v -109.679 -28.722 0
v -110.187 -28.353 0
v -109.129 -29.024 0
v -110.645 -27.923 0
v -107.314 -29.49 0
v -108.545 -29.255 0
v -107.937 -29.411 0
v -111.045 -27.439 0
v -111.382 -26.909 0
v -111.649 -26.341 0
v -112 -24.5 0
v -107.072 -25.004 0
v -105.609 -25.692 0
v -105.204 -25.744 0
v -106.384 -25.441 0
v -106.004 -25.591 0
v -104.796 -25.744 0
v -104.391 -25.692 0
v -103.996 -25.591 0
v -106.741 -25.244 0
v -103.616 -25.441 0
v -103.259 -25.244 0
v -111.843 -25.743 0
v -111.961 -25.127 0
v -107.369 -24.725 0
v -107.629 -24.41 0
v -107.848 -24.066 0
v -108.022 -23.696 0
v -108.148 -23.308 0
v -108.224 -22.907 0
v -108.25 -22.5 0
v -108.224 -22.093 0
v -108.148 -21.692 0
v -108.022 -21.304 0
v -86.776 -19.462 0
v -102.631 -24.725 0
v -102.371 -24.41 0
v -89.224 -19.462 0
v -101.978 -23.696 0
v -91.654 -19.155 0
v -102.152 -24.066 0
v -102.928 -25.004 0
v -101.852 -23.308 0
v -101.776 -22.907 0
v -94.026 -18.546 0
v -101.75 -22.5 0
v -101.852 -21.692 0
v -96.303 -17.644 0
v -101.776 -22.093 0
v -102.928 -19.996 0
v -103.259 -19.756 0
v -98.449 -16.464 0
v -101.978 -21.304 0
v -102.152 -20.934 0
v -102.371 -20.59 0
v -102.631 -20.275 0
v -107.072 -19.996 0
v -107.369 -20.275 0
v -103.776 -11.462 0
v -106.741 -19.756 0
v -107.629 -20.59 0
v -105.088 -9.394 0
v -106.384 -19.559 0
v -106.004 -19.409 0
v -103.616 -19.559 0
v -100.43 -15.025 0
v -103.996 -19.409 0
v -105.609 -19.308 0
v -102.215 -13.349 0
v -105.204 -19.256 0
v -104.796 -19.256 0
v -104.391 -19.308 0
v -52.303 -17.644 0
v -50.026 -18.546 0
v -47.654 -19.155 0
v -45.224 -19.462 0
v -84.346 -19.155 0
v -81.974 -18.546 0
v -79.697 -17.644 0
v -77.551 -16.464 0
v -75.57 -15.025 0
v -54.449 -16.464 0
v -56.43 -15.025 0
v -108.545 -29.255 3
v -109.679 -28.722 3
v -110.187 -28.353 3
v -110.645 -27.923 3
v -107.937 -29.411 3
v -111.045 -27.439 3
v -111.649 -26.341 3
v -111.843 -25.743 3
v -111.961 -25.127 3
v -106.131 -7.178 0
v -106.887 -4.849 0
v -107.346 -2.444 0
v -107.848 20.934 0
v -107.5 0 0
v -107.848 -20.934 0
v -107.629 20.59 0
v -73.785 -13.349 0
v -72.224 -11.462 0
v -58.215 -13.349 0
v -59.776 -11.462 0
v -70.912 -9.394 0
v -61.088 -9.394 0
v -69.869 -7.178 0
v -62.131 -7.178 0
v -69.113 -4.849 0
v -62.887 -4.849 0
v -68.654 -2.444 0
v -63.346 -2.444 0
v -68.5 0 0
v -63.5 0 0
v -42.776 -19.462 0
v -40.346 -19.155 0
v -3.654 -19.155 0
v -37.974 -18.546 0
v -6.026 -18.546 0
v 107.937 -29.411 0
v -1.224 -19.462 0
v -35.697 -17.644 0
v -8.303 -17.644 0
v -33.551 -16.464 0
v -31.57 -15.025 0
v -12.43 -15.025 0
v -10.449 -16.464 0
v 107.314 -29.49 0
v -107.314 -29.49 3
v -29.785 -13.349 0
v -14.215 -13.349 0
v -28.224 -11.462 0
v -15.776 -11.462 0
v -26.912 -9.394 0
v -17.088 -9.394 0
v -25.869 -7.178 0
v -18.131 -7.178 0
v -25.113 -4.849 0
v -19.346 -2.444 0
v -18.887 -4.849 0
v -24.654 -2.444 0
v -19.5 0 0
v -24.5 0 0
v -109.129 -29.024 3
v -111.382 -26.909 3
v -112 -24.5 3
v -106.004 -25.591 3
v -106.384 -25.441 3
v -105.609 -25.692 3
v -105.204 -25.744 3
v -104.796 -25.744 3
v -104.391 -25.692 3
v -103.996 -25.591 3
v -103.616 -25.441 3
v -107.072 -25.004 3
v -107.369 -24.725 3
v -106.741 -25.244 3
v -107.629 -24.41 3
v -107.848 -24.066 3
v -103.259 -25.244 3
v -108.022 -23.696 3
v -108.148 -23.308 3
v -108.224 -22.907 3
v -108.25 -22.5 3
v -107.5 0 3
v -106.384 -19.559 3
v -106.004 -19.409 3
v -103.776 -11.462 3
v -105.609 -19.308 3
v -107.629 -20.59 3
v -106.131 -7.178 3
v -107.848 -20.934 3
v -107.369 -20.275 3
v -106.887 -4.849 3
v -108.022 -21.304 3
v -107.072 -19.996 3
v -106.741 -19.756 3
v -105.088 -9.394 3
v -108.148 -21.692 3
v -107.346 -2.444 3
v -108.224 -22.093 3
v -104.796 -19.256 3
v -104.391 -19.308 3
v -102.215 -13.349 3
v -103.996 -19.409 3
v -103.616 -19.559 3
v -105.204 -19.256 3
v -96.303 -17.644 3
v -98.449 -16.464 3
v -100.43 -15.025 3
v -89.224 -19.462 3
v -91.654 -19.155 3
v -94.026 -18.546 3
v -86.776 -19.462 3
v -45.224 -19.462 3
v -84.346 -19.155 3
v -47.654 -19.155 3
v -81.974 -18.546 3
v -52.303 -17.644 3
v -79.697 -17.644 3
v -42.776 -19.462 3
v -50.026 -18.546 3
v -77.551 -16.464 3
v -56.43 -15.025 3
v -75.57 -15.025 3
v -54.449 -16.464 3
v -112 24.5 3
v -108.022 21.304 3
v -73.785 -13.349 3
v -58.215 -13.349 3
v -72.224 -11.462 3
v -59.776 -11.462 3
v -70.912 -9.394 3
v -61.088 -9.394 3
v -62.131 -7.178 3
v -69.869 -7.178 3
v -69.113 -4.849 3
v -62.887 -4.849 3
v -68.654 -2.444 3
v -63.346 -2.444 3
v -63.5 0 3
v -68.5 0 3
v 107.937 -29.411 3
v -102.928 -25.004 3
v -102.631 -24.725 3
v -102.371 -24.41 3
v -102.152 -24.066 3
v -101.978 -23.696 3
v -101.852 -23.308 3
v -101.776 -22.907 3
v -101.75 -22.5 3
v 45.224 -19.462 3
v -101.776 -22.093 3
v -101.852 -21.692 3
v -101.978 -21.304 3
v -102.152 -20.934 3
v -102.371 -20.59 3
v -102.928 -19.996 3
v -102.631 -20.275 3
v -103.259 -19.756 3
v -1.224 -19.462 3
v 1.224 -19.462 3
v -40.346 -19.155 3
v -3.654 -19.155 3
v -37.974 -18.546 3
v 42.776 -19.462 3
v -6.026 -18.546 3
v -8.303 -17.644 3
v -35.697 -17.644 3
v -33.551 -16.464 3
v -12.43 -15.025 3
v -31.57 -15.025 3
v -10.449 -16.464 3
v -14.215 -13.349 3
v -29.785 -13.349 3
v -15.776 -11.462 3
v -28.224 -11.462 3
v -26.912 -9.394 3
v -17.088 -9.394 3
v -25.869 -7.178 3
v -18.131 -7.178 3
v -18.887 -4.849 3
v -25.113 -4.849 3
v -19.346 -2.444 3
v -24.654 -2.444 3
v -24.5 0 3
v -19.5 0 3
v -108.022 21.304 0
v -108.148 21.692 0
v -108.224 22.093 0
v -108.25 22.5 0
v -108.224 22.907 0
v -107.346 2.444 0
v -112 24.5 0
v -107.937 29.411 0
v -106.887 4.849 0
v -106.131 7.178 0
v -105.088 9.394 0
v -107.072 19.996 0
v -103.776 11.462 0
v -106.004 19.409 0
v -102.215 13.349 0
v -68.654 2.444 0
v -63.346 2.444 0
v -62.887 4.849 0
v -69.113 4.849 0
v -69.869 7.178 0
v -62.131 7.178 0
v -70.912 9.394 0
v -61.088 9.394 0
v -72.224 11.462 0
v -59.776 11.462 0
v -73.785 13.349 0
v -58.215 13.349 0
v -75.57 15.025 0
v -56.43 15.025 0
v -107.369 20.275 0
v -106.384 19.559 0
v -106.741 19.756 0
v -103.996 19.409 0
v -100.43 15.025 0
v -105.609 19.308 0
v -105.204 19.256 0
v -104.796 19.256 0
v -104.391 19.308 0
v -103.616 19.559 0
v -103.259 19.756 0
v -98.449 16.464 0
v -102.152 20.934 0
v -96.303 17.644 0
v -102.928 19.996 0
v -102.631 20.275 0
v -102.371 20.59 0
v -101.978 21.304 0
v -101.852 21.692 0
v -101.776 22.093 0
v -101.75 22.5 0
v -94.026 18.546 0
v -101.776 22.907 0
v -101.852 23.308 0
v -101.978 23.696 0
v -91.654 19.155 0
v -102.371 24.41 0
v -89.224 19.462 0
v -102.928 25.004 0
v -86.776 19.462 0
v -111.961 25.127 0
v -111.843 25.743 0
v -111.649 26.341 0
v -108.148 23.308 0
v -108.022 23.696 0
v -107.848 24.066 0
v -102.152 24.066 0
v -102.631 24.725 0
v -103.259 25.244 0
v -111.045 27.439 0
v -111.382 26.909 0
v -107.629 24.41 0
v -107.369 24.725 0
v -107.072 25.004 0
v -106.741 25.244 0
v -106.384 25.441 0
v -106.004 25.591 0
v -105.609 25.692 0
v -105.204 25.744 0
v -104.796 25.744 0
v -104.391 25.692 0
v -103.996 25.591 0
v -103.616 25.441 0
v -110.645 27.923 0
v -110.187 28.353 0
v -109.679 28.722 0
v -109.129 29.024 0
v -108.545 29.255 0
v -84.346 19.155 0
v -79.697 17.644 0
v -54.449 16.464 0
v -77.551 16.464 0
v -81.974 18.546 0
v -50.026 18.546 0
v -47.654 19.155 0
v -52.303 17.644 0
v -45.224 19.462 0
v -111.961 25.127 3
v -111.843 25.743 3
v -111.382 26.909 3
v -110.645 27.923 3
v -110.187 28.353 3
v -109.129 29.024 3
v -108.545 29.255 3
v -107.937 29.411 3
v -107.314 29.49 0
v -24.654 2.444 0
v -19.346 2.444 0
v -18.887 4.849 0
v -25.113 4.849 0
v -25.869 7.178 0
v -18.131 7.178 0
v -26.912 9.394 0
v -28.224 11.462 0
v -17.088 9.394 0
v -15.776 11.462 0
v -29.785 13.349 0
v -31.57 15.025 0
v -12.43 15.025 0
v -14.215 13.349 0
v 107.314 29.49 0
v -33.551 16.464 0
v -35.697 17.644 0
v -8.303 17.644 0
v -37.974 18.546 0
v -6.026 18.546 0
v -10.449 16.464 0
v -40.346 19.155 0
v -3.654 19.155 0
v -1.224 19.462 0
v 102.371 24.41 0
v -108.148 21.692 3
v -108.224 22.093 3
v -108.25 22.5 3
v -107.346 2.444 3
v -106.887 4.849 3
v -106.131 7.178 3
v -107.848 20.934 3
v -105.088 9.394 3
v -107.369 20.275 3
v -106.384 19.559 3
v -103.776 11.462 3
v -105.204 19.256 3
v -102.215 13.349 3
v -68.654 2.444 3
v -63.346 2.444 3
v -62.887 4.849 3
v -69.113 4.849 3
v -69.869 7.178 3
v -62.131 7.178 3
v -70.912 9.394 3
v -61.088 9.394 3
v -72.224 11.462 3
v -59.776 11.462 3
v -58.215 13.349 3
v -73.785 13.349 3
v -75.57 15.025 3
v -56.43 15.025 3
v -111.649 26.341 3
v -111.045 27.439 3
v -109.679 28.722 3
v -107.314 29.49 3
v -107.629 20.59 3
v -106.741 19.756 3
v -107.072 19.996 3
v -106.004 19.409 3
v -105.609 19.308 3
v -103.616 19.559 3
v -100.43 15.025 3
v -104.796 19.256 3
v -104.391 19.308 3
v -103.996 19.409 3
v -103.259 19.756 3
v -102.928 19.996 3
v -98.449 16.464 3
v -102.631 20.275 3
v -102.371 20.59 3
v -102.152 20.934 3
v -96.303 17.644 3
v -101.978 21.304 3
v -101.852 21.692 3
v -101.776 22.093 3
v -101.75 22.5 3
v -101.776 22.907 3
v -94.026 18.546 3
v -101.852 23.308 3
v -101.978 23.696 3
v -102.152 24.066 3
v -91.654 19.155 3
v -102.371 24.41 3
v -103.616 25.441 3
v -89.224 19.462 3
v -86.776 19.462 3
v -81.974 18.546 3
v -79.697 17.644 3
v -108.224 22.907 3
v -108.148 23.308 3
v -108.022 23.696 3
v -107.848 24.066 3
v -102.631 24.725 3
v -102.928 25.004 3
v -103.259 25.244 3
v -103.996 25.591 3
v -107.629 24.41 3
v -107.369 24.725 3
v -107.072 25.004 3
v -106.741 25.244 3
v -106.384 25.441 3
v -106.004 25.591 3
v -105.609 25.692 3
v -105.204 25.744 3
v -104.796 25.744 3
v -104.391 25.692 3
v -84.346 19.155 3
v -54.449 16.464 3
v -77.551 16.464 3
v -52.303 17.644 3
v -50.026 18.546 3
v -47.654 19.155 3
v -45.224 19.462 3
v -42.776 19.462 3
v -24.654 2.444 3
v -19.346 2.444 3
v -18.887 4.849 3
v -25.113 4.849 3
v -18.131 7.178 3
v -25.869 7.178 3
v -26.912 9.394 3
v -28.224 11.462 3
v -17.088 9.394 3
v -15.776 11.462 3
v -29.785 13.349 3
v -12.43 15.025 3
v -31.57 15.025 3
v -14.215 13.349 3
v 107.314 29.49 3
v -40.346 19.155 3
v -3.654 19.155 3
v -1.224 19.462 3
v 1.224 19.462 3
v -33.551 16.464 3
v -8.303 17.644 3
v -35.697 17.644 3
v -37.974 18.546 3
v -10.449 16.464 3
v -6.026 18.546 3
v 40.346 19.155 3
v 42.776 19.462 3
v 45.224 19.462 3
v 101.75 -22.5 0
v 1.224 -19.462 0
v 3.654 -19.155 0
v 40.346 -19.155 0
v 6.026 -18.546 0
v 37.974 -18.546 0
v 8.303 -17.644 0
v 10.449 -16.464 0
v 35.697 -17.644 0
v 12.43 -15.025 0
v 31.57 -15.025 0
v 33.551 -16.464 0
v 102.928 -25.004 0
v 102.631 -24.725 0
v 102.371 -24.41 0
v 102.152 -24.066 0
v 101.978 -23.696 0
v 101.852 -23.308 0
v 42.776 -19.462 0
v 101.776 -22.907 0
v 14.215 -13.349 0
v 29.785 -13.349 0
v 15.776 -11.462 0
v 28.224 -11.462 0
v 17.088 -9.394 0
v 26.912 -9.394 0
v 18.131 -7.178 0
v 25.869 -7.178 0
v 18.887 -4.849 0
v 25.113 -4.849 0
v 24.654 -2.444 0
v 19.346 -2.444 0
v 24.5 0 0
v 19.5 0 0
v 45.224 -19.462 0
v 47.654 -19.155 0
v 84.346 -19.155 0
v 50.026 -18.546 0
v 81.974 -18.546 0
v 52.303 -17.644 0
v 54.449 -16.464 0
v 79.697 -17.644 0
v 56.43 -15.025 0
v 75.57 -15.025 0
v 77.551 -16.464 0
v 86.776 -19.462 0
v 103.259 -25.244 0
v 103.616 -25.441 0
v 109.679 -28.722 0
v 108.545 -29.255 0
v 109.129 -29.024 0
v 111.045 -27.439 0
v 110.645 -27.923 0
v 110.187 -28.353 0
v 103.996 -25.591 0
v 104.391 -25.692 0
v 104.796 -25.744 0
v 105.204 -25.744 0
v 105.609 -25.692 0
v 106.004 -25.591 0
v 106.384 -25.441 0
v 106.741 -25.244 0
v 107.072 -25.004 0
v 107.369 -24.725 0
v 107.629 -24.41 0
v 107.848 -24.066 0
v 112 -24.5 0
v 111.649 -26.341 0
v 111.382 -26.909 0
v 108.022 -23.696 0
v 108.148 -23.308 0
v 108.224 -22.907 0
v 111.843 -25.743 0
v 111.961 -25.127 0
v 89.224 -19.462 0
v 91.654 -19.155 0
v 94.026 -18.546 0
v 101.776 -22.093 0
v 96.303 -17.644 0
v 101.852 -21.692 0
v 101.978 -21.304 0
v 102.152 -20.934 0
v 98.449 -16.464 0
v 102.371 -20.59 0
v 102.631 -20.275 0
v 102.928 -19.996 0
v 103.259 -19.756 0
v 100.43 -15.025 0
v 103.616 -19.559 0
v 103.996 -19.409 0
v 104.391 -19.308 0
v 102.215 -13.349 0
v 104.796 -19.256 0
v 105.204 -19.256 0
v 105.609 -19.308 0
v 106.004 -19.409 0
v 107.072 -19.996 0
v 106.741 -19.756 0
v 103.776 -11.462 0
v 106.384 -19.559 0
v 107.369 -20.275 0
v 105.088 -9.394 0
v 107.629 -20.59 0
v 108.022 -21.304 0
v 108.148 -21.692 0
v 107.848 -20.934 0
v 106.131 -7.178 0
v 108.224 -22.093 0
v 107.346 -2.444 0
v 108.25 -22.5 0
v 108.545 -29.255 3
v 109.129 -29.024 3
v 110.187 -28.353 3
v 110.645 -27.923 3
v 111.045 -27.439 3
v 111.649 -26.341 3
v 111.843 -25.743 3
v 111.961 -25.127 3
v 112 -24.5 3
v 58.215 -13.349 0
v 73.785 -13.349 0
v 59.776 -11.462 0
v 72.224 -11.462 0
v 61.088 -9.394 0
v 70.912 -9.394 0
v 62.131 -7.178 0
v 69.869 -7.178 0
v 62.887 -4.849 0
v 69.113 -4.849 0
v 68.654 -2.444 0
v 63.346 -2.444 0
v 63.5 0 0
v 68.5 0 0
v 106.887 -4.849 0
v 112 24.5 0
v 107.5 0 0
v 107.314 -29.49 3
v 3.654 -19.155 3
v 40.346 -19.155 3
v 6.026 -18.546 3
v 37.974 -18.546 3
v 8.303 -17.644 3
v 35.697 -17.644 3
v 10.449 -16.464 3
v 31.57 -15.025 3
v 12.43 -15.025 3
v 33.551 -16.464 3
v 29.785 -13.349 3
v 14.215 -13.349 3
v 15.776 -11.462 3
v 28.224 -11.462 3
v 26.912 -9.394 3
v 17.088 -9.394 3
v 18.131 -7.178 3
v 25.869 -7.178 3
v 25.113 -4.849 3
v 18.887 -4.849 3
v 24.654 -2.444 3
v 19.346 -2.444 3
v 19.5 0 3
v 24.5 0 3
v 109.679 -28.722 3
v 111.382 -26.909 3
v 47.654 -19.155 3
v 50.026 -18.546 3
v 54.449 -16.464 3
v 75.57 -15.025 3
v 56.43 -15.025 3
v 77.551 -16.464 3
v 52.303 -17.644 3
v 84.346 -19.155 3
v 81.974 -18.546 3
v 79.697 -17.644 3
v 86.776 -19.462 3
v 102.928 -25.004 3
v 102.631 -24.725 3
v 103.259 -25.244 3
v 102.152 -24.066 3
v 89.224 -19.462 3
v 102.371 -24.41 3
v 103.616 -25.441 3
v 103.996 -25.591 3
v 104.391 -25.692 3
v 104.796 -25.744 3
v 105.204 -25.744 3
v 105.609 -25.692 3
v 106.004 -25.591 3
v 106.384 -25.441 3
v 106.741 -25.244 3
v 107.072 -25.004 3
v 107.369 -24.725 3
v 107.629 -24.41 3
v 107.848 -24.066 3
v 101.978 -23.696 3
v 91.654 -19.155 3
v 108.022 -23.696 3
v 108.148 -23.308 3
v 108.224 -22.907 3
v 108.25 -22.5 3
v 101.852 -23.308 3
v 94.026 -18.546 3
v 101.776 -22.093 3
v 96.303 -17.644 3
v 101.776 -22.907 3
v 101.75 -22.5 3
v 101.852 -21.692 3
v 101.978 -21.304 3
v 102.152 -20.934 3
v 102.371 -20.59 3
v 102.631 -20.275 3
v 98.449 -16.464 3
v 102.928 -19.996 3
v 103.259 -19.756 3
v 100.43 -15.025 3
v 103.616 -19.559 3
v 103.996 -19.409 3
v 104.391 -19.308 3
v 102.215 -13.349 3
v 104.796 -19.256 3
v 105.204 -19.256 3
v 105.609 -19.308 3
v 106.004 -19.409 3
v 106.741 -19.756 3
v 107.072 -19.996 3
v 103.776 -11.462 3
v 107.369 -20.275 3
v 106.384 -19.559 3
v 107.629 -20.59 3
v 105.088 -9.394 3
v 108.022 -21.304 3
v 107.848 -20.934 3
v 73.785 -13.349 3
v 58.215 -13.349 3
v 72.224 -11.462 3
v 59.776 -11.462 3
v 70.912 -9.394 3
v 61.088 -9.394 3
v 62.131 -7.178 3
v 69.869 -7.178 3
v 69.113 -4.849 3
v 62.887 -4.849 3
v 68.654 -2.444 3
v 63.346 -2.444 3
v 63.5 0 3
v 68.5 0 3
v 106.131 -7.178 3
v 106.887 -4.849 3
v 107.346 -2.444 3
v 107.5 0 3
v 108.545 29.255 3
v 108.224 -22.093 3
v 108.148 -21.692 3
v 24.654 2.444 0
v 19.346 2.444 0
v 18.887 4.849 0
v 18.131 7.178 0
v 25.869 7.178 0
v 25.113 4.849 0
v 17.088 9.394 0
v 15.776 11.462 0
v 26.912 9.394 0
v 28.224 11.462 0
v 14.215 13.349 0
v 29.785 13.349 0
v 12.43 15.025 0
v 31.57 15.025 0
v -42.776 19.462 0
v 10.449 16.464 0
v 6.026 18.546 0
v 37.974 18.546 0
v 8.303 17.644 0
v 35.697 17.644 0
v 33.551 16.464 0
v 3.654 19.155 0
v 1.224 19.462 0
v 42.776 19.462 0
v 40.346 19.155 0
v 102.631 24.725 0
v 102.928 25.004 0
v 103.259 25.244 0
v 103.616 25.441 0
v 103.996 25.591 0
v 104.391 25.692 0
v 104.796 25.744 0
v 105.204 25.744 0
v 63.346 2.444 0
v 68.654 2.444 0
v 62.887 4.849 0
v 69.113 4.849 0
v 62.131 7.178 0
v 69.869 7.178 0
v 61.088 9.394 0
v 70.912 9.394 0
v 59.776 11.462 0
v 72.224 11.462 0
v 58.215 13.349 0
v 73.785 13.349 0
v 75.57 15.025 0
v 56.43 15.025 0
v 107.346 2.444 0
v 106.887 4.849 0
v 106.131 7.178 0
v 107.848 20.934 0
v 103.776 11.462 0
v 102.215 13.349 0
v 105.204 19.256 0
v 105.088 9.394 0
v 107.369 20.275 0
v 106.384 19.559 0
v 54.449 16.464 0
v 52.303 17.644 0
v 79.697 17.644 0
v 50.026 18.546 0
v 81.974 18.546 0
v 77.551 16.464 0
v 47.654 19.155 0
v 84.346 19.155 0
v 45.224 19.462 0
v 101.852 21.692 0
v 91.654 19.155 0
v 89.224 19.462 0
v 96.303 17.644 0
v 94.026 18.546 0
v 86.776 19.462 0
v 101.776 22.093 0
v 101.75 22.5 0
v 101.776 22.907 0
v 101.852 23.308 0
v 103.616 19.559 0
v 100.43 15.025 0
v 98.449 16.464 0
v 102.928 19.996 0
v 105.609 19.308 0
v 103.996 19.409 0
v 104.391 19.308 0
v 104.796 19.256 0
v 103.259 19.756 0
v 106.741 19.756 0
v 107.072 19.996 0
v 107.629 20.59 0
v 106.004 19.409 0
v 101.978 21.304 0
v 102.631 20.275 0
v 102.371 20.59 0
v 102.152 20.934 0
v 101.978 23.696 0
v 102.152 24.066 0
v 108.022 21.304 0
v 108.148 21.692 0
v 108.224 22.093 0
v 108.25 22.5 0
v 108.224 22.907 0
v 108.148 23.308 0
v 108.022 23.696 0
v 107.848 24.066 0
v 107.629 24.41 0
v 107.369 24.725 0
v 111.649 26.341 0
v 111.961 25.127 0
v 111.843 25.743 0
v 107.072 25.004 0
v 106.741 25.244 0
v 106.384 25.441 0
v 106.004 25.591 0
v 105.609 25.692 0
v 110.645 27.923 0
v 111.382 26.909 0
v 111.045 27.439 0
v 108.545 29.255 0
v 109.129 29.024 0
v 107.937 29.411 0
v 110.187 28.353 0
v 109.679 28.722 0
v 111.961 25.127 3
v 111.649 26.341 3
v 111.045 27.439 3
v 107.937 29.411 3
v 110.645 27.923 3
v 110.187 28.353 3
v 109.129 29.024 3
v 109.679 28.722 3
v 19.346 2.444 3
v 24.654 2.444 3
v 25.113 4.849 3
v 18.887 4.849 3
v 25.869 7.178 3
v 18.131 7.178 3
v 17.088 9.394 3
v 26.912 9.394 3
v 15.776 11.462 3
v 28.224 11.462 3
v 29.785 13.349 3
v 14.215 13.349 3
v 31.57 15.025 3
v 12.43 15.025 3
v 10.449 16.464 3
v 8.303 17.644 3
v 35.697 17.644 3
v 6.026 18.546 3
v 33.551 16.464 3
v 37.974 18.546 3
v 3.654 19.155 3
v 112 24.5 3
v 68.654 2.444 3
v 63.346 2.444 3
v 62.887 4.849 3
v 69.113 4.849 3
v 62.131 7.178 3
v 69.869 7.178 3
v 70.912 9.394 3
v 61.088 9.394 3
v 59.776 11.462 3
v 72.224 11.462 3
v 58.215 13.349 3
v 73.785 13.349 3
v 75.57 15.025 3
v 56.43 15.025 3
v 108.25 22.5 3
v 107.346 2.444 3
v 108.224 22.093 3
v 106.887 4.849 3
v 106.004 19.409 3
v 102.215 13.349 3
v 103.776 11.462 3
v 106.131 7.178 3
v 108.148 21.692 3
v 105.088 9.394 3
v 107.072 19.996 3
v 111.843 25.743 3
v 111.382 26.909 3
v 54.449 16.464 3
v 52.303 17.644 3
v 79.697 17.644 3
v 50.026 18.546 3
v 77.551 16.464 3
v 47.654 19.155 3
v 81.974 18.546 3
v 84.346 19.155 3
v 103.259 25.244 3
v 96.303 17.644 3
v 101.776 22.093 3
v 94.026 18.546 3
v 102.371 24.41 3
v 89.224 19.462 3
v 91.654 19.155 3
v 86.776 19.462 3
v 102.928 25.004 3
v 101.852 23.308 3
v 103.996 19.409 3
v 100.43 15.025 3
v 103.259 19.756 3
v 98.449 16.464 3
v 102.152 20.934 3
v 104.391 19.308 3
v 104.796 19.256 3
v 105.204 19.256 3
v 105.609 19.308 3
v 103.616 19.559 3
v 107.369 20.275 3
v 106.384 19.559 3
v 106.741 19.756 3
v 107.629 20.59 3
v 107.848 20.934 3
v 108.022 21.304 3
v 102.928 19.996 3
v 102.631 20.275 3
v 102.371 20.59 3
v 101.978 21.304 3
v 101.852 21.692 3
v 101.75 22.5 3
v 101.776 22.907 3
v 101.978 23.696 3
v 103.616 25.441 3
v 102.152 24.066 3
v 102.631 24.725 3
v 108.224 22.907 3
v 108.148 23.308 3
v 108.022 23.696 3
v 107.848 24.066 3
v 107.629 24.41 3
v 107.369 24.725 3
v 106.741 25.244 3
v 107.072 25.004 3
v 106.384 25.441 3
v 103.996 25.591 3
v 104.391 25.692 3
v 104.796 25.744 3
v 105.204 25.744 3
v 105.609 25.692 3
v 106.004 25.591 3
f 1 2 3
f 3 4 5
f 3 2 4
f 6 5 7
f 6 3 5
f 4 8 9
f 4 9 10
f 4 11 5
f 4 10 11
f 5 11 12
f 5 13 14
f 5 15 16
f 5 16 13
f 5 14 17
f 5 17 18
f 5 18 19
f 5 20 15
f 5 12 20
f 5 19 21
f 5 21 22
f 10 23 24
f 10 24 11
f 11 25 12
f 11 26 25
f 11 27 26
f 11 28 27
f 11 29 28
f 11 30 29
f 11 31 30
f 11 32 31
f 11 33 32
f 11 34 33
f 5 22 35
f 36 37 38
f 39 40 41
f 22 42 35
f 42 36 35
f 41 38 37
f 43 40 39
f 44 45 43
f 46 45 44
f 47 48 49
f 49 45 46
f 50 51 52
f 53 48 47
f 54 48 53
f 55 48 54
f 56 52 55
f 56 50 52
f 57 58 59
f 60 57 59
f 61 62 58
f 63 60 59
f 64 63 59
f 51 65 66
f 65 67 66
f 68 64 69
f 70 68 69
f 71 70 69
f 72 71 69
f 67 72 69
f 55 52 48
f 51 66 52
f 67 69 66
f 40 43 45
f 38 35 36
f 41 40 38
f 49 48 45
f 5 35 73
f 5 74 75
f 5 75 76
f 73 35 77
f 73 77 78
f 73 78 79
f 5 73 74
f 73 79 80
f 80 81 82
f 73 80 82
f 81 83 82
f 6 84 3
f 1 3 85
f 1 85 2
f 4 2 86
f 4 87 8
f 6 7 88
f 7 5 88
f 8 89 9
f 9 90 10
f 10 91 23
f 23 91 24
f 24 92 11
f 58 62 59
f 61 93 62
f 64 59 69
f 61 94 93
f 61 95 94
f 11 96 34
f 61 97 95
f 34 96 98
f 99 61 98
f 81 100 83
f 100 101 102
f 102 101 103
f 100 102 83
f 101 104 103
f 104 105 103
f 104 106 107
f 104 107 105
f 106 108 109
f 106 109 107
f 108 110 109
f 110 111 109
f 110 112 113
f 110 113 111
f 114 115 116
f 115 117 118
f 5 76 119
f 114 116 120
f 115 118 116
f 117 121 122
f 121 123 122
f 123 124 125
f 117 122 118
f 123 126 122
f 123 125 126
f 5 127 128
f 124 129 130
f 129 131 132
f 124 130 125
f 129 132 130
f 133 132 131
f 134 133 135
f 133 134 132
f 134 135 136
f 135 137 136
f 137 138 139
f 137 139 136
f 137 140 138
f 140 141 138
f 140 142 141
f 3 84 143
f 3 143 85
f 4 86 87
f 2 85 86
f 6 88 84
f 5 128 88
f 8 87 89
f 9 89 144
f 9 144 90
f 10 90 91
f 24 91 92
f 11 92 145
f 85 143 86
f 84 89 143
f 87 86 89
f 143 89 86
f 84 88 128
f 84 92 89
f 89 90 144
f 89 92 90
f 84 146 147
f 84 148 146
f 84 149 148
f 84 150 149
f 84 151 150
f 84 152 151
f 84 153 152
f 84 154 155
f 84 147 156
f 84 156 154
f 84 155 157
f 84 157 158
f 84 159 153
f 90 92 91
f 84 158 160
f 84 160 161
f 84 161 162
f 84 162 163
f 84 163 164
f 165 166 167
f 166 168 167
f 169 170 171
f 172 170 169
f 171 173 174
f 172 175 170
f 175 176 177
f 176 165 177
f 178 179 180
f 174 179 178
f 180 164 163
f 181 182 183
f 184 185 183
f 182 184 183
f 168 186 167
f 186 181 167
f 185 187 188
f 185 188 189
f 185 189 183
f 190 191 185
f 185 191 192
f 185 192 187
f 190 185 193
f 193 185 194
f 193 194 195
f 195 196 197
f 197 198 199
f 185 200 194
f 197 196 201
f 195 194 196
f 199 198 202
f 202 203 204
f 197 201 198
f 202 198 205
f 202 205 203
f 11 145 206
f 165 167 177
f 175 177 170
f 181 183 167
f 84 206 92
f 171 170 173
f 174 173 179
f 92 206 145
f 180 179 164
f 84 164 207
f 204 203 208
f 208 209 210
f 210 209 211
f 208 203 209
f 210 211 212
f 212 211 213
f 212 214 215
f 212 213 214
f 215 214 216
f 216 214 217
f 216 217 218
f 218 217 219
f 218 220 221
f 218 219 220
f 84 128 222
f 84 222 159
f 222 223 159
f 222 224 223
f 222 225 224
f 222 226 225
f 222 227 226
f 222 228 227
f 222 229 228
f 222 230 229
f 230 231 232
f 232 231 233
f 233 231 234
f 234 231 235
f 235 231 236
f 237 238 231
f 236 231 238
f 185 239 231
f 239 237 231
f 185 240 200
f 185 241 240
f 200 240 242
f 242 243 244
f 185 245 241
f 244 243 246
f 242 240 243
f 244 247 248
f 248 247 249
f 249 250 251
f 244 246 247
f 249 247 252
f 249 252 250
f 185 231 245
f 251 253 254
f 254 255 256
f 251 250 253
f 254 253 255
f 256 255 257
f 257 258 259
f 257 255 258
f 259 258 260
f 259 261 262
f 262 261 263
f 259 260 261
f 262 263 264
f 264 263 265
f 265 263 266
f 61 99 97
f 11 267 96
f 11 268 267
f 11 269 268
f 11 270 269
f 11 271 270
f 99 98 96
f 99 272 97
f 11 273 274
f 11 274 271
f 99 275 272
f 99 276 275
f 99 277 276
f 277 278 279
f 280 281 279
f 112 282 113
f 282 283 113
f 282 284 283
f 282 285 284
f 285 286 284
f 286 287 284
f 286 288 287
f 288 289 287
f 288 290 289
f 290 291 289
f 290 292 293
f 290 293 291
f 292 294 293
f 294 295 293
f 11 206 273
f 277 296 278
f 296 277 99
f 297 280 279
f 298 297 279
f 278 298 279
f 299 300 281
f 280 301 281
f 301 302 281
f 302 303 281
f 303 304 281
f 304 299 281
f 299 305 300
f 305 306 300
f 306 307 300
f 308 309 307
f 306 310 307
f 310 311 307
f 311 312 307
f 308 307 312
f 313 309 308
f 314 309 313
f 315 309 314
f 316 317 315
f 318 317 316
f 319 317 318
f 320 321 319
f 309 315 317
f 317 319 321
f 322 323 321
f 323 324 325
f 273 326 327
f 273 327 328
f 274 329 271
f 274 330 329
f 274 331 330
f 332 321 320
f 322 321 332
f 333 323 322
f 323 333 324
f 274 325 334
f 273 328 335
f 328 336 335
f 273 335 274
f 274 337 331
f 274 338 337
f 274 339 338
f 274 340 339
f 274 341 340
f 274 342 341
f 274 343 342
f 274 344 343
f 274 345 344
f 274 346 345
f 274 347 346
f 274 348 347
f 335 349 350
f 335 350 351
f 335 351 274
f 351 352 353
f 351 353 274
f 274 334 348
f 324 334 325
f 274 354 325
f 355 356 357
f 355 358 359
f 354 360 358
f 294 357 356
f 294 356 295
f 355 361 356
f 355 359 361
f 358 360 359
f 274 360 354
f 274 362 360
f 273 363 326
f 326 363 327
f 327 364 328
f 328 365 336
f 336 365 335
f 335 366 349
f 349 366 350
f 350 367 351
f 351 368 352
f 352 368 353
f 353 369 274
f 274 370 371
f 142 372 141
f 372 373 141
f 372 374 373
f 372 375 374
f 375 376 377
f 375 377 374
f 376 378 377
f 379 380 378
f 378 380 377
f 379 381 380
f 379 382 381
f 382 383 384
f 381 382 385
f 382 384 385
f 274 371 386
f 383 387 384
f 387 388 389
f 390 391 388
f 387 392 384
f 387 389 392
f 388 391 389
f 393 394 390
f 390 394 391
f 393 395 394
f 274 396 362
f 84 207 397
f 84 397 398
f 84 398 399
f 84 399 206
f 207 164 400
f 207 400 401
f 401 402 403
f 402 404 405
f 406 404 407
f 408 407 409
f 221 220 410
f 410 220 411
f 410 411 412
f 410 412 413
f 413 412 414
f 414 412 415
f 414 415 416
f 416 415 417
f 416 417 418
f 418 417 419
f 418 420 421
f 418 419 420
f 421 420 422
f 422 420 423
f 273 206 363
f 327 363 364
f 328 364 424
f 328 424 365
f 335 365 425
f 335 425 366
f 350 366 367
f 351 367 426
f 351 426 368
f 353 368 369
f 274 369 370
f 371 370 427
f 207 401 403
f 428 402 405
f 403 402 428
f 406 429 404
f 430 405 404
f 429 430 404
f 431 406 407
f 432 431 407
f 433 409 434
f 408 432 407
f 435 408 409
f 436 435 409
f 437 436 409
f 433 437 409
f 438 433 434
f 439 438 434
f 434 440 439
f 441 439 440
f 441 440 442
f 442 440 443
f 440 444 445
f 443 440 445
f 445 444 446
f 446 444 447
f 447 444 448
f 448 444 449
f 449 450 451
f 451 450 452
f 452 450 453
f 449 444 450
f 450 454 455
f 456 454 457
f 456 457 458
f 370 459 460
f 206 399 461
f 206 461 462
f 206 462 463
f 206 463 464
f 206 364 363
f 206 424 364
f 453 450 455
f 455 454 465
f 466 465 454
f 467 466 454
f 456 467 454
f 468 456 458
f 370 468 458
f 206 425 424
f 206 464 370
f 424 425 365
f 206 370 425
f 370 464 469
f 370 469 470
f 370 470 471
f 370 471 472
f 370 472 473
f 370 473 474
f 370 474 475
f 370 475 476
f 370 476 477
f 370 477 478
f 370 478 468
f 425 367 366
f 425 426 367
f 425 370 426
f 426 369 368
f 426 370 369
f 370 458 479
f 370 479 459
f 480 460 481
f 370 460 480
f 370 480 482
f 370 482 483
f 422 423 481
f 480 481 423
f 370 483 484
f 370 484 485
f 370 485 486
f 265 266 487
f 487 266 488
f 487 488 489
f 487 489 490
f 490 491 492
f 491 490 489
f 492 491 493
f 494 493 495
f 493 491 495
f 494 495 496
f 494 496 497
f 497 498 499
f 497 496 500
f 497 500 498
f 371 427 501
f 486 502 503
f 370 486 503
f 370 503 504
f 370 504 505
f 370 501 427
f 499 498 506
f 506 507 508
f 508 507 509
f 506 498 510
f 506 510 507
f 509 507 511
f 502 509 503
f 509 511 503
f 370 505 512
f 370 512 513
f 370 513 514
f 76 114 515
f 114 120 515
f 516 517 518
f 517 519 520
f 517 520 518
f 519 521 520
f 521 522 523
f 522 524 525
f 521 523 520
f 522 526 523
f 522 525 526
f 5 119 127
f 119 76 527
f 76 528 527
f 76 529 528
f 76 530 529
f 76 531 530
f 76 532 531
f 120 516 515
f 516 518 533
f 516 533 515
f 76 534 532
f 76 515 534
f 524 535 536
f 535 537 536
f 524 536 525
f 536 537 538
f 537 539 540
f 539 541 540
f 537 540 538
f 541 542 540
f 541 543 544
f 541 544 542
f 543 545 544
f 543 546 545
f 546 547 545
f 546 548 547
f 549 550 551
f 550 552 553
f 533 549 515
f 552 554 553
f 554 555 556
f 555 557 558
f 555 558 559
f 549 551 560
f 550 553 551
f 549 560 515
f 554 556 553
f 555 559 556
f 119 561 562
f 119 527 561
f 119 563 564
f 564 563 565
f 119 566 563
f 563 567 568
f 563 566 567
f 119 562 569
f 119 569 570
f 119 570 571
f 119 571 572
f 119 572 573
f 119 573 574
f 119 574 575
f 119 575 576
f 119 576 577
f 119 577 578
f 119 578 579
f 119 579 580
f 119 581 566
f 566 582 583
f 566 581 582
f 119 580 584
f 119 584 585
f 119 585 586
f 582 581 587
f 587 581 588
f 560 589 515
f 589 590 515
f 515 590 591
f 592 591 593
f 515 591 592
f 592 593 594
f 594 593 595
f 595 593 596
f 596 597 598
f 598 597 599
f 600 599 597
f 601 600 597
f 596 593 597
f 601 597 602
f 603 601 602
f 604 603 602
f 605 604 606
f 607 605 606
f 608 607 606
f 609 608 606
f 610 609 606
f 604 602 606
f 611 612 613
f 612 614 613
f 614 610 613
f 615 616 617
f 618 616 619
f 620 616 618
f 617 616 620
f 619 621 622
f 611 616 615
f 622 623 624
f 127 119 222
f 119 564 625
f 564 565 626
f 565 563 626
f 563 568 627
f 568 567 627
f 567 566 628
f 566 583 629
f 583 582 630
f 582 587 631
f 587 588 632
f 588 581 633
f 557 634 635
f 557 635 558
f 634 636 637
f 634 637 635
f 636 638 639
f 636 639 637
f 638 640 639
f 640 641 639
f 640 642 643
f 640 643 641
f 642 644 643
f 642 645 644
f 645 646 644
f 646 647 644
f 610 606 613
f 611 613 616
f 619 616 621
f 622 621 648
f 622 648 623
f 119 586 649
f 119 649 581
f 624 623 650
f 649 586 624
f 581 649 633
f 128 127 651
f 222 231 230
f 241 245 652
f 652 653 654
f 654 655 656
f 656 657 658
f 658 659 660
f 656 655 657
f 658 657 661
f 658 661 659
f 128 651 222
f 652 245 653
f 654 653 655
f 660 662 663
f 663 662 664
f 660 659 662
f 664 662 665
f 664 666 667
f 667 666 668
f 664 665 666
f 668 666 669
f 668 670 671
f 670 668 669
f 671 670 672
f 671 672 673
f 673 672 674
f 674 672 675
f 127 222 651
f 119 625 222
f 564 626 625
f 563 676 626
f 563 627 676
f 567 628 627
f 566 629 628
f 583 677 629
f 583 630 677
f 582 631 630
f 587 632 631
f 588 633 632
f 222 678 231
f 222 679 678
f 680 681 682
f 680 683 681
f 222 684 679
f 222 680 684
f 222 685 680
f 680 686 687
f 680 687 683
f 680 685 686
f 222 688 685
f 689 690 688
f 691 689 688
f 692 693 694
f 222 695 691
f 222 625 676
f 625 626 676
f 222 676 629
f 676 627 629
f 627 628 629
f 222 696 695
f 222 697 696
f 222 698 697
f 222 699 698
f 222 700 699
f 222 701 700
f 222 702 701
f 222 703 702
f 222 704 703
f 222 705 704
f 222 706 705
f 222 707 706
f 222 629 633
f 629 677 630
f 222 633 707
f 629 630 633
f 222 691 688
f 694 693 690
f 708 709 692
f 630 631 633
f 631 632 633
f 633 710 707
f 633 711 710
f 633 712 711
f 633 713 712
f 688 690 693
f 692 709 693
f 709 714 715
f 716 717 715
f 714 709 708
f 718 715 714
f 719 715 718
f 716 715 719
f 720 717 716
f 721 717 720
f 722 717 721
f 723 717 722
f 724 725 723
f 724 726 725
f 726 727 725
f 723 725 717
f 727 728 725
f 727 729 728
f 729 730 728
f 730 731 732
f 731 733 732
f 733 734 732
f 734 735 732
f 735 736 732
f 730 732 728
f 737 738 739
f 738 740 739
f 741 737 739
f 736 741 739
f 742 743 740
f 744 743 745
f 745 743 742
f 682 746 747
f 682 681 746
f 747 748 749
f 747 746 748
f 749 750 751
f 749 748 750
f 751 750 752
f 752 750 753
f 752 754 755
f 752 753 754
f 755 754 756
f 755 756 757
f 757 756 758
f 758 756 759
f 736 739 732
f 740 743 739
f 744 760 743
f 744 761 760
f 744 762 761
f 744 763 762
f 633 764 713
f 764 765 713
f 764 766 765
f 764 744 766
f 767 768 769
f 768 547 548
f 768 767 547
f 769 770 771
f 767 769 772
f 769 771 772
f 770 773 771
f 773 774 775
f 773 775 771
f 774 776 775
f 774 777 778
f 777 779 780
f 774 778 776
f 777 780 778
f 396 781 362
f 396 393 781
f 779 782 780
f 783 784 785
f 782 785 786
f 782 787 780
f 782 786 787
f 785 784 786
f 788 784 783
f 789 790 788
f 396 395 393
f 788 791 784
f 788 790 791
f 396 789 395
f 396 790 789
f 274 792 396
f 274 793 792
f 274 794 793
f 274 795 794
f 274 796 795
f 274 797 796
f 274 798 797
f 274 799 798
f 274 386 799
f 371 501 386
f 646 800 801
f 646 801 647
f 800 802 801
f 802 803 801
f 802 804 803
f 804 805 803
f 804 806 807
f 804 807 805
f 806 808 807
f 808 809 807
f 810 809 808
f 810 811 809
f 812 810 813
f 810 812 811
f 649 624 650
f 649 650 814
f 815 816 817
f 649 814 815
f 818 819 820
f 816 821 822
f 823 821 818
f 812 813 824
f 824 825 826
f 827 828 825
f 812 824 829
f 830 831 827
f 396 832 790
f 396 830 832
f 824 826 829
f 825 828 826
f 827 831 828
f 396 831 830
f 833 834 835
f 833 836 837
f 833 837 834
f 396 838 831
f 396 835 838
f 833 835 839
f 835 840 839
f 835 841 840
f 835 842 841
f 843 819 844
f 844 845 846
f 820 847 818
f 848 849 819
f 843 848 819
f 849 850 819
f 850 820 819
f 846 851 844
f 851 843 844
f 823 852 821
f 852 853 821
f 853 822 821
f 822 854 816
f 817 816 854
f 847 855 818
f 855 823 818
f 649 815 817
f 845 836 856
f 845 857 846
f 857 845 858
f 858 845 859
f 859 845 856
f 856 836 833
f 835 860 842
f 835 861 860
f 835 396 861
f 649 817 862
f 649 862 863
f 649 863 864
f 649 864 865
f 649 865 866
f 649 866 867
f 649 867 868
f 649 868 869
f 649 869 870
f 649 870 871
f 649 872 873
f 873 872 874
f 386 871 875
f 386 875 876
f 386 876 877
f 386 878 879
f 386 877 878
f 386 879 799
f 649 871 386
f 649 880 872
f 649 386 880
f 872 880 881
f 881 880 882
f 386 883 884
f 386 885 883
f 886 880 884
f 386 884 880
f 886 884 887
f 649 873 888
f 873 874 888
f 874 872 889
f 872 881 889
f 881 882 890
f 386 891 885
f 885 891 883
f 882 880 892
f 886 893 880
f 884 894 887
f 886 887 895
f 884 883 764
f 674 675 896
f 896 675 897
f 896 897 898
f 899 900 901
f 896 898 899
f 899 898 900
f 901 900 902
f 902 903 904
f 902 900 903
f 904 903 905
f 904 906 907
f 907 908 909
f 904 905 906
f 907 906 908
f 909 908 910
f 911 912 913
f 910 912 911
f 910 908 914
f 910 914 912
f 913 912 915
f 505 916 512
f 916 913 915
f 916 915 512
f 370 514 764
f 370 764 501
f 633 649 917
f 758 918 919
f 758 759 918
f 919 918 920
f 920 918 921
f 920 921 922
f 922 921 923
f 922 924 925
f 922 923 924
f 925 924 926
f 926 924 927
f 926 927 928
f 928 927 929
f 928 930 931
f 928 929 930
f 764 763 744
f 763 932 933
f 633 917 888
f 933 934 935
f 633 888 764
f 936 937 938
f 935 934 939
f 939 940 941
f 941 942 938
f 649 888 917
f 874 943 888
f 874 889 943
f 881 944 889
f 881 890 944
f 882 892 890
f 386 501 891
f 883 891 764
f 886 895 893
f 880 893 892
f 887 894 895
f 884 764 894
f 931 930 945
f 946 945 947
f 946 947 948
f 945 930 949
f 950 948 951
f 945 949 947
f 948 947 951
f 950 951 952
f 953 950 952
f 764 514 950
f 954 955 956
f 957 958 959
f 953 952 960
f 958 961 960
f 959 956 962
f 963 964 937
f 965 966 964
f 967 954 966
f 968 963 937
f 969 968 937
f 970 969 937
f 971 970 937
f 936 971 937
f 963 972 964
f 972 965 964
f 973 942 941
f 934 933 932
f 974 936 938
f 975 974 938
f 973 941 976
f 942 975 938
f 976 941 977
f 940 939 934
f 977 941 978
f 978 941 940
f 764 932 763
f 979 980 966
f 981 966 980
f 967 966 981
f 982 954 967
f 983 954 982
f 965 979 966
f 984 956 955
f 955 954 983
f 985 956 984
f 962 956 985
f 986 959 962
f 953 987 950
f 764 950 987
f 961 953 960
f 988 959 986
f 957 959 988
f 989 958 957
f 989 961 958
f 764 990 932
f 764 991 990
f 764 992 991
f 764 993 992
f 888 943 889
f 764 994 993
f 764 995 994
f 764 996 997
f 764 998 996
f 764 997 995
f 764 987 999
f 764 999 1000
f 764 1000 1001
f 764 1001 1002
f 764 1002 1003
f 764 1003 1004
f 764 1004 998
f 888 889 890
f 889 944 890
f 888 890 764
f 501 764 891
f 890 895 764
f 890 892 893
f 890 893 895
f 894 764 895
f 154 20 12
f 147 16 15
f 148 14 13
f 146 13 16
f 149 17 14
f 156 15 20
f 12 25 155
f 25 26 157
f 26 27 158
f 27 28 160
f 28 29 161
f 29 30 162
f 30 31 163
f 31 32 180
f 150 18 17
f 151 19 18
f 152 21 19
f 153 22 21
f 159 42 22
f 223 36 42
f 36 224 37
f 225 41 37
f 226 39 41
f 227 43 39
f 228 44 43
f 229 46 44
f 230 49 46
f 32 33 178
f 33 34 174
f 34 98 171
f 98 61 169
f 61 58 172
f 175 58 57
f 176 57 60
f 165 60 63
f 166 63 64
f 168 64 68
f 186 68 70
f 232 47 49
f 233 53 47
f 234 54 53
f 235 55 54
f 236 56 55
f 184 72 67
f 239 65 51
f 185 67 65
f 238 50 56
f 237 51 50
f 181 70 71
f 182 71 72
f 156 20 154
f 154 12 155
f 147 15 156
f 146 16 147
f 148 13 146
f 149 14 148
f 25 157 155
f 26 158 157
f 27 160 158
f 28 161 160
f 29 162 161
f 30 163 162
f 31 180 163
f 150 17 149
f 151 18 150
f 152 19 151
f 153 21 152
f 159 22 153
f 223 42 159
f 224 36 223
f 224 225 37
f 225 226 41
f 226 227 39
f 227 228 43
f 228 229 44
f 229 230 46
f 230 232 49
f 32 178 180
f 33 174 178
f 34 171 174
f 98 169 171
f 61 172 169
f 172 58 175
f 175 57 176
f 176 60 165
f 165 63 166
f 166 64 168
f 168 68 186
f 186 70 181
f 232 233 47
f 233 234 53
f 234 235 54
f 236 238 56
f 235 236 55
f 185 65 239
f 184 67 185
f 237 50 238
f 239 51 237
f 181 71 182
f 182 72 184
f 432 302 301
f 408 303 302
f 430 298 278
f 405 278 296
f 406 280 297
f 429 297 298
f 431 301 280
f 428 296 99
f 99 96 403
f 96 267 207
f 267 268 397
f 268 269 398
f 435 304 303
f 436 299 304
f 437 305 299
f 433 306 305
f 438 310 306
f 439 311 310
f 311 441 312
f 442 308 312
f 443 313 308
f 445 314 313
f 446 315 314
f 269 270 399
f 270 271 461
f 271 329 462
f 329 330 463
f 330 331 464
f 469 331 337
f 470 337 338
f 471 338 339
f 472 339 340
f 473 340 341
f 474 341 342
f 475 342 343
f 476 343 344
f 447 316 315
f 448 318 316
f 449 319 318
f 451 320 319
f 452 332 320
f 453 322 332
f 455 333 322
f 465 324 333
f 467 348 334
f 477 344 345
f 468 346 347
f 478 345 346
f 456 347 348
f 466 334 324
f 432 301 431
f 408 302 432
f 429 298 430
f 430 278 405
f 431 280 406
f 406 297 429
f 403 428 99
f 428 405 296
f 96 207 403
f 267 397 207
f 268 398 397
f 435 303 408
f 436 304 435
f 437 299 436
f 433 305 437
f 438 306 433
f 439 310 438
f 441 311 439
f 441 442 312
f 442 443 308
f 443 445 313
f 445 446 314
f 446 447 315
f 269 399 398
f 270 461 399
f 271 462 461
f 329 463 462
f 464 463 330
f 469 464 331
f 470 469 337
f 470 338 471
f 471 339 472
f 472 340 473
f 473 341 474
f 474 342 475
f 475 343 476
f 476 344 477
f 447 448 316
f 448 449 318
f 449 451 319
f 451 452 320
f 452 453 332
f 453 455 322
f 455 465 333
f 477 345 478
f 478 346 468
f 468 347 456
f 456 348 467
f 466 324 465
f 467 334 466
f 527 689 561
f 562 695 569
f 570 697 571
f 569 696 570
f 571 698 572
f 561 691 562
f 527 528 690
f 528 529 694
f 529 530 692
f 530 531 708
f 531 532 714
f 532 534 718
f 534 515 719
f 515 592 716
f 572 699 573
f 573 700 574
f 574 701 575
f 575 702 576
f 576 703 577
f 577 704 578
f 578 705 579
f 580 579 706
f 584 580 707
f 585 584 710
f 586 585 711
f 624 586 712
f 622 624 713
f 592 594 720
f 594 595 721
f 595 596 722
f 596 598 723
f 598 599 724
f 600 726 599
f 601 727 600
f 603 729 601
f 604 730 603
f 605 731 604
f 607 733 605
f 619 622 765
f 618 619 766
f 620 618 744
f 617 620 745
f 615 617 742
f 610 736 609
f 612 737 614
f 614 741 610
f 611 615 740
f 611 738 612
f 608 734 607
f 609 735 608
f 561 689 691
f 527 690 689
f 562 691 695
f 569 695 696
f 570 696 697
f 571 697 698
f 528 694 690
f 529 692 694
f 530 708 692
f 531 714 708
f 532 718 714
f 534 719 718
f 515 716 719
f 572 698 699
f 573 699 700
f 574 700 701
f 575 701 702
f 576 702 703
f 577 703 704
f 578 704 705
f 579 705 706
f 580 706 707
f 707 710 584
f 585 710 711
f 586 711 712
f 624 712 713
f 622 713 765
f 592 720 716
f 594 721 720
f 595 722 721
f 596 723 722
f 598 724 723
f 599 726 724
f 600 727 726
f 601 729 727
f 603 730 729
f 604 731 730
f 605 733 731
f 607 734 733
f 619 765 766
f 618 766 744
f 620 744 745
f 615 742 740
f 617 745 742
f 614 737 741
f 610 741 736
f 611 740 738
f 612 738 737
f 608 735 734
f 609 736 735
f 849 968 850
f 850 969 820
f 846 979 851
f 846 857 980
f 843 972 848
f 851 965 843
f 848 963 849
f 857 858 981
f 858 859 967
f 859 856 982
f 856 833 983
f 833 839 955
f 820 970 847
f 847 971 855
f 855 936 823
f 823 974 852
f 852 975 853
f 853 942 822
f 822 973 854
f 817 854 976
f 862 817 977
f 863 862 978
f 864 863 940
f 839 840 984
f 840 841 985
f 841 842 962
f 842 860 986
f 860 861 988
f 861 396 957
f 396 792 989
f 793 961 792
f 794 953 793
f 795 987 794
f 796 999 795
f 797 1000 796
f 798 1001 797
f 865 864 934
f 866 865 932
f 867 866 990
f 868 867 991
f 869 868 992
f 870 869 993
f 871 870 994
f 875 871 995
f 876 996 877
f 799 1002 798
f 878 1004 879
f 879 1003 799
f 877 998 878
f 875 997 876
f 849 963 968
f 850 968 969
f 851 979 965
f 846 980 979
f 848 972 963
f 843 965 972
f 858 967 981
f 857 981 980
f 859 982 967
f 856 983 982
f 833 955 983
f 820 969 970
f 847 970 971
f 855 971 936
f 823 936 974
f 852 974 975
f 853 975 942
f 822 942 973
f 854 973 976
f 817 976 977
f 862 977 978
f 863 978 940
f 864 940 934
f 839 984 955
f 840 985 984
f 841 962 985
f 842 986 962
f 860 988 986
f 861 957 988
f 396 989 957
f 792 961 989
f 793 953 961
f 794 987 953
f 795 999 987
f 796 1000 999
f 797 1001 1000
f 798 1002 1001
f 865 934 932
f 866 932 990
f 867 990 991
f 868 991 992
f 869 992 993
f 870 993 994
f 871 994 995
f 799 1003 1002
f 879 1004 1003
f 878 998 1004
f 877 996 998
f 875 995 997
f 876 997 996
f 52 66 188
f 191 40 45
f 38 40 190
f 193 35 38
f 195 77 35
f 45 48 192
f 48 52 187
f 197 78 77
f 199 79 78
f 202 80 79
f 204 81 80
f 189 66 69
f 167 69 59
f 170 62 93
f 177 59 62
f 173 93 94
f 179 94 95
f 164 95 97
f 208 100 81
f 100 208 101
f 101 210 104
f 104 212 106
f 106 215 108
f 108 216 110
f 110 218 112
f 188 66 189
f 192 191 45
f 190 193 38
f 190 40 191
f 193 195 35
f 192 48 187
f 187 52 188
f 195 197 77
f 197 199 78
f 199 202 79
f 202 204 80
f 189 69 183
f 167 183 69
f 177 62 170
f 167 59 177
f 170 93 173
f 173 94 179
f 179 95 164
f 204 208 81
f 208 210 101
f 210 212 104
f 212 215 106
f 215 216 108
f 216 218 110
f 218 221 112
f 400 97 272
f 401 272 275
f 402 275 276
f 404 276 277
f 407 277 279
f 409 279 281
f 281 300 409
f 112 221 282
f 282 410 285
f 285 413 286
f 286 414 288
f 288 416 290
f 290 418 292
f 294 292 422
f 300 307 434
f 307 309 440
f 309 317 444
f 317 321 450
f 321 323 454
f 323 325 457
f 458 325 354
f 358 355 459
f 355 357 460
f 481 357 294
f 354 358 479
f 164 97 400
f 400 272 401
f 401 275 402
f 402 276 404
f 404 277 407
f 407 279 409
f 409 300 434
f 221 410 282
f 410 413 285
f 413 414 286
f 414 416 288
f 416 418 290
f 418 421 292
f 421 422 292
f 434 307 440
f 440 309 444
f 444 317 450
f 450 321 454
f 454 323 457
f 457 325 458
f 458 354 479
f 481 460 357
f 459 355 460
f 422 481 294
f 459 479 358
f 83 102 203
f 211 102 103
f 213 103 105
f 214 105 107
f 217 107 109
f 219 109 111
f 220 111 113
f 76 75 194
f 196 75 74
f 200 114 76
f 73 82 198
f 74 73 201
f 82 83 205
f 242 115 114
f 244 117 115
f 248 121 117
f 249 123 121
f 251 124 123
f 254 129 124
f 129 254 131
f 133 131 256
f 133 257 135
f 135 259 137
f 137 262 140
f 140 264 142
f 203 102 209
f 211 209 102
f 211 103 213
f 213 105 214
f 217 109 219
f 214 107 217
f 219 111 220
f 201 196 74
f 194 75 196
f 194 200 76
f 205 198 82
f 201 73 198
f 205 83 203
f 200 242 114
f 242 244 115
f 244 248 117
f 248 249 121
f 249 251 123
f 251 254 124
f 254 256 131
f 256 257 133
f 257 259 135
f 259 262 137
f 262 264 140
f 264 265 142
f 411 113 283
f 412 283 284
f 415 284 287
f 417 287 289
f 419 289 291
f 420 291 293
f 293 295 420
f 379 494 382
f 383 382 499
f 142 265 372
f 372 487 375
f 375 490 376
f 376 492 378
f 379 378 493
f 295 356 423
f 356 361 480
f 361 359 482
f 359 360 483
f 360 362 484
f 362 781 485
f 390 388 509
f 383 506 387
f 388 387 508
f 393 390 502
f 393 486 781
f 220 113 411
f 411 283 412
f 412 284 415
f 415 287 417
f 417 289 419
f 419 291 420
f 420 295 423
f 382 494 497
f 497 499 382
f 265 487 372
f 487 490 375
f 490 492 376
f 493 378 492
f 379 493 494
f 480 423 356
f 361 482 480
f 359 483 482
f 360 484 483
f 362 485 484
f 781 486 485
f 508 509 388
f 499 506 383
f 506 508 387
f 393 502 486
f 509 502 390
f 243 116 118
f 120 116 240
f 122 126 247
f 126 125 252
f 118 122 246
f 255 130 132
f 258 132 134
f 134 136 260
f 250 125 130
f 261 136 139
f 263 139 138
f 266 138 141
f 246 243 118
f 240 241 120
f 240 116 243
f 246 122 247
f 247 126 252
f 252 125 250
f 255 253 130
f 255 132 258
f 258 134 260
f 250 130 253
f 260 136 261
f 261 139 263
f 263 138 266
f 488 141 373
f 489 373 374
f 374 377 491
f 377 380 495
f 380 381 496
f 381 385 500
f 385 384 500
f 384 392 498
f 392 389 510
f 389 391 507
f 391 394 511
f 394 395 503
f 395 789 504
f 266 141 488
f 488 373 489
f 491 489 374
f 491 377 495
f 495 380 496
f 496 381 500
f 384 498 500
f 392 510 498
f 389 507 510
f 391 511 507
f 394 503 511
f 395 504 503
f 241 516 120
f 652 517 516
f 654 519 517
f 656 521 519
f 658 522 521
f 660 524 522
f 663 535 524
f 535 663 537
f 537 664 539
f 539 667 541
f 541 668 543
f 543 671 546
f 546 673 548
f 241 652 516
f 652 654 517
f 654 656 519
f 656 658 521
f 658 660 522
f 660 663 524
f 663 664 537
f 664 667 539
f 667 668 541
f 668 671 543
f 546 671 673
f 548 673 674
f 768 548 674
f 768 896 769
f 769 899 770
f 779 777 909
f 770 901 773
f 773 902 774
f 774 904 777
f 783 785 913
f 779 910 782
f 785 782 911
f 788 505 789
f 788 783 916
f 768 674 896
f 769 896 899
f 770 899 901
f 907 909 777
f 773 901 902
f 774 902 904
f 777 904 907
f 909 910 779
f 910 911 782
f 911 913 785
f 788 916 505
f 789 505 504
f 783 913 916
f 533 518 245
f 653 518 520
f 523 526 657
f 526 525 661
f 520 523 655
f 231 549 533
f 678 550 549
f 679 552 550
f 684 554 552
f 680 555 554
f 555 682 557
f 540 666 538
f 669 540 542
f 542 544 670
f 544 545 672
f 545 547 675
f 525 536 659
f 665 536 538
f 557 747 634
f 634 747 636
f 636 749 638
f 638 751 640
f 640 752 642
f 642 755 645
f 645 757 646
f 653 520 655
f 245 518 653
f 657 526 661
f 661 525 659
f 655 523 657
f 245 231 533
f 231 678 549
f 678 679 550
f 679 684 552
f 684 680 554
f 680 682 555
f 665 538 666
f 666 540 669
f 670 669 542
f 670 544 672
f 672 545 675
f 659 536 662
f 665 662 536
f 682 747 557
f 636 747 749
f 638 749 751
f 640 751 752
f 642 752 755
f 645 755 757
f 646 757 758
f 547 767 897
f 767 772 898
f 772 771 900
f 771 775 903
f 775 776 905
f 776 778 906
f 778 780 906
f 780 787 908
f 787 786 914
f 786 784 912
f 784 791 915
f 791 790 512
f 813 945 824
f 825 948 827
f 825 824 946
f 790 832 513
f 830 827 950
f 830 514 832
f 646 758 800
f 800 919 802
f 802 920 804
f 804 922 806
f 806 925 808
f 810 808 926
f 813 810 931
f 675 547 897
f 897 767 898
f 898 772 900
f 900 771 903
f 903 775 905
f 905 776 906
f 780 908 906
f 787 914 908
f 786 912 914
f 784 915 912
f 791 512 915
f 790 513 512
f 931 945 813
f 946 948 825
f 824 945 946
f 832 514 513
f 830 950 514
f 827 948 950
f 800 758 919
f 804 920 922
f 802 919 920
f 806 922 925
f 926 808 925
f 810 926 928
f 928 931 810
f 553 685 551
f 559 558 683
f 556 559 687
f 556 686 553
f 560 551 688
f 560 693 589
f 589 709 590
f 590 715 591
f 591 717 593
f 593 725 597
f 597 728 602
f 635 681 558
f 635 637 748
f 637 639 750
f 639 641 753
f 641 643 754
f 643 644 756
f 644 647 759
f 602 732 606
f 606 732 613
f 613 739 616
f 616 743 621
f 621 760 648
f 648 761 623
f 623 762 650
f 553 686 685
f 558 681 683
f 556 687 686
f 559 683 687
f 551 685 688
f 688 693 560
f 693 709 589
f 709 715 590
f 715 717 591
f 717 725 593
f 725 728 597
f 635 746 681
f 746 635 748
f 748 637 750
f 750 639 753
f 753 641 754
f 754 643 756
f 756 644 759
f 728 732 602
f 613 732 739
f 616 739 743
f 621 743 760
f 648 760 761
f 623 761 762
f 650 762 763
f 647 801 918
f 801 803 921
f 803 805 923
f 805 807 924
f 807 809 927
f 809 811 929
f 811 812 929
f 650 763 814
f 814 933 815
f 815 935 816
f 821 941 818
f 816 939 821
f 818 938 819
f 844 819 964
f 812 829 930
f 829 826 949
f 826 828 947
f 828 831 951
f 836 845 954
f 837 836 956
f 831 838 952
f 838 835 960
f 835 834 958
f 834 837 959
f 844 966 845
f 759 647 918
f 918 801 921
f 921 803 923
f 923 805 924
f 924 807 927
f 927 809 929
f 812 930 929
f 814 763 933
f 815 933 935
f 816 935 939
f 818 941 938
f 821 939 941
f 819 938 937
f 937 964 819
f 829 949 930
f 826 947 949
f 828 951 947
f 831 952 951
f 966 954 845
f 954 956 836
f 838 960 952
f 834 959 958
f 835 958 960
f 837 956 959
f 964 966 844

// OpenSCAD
$fn = 50;

difference() {
	union() {
		hull() {
			translate(v = [-107.0, 24.5, 0]) {
				cylinder(h = 3, r = 5);
			}
			translate(v = [107.0, 24.5, 0]) {
				cylinder(h = 3, r = 5);
			}
			translate(v = [-107.0, -24.5, 0]) {
				cylinder(h = 3, r = 5);
			}
			translate(v = [107.0, -24.5, 0]) {
				cylinder(h = 3, r = 5);
			}
		}
	}
	union() {
		translate(v = [-105.0, -22.5, -100.0]) {
			cylinder(h = 200, r = 3.25);
		}
		translate(v = [-105.0, 22.5, -100.0]) {
			cylinder(h = 200, r = 3.25);
		}
		translate(v = [105.0, -22.5, -100.0]) {
			cylinder(h = 200, r = 3.25);
		}
		translate(v = [105.0, 22.5, -100.0]) {
			cylinder(h = 200, r = 3.25);
		}
		translate(v = [-105.0, -22.5, -100.0]) {
			cylinder(h = 200, r = 1.8);
		}
		translate(v = [-105.0, 22.5, -100.0]) {
			cylinder(h = 200, r = 1.8);
		}
		translate(v = [105.0, -22.5, -100.0]) {
			cylinder(h = 200, r = 1.8);
		}
		translate(v = [105.0, 22.5, -100.0]) {
			cylinder(h = 200, r = 1.8);
		}
		translate(v = [-88.0, 0, 0.0]) {
			cylinder(h = 3, r = 19.5);
		}
		translate(v = [-44.0, 0, 0.0]) {
			cylinder(h = 3, r = 19.5);
		}
		cylinder(h = 3, r = 19.5);
		translate(v = [44.0, 0, 0.0]) {
			cylinder(h = 3, r = 19.5);
		}
		translate(v = [88.0, 0, 0.0]) {
			cylinder(h = 3, r = 19.5);
		}
	}
}
